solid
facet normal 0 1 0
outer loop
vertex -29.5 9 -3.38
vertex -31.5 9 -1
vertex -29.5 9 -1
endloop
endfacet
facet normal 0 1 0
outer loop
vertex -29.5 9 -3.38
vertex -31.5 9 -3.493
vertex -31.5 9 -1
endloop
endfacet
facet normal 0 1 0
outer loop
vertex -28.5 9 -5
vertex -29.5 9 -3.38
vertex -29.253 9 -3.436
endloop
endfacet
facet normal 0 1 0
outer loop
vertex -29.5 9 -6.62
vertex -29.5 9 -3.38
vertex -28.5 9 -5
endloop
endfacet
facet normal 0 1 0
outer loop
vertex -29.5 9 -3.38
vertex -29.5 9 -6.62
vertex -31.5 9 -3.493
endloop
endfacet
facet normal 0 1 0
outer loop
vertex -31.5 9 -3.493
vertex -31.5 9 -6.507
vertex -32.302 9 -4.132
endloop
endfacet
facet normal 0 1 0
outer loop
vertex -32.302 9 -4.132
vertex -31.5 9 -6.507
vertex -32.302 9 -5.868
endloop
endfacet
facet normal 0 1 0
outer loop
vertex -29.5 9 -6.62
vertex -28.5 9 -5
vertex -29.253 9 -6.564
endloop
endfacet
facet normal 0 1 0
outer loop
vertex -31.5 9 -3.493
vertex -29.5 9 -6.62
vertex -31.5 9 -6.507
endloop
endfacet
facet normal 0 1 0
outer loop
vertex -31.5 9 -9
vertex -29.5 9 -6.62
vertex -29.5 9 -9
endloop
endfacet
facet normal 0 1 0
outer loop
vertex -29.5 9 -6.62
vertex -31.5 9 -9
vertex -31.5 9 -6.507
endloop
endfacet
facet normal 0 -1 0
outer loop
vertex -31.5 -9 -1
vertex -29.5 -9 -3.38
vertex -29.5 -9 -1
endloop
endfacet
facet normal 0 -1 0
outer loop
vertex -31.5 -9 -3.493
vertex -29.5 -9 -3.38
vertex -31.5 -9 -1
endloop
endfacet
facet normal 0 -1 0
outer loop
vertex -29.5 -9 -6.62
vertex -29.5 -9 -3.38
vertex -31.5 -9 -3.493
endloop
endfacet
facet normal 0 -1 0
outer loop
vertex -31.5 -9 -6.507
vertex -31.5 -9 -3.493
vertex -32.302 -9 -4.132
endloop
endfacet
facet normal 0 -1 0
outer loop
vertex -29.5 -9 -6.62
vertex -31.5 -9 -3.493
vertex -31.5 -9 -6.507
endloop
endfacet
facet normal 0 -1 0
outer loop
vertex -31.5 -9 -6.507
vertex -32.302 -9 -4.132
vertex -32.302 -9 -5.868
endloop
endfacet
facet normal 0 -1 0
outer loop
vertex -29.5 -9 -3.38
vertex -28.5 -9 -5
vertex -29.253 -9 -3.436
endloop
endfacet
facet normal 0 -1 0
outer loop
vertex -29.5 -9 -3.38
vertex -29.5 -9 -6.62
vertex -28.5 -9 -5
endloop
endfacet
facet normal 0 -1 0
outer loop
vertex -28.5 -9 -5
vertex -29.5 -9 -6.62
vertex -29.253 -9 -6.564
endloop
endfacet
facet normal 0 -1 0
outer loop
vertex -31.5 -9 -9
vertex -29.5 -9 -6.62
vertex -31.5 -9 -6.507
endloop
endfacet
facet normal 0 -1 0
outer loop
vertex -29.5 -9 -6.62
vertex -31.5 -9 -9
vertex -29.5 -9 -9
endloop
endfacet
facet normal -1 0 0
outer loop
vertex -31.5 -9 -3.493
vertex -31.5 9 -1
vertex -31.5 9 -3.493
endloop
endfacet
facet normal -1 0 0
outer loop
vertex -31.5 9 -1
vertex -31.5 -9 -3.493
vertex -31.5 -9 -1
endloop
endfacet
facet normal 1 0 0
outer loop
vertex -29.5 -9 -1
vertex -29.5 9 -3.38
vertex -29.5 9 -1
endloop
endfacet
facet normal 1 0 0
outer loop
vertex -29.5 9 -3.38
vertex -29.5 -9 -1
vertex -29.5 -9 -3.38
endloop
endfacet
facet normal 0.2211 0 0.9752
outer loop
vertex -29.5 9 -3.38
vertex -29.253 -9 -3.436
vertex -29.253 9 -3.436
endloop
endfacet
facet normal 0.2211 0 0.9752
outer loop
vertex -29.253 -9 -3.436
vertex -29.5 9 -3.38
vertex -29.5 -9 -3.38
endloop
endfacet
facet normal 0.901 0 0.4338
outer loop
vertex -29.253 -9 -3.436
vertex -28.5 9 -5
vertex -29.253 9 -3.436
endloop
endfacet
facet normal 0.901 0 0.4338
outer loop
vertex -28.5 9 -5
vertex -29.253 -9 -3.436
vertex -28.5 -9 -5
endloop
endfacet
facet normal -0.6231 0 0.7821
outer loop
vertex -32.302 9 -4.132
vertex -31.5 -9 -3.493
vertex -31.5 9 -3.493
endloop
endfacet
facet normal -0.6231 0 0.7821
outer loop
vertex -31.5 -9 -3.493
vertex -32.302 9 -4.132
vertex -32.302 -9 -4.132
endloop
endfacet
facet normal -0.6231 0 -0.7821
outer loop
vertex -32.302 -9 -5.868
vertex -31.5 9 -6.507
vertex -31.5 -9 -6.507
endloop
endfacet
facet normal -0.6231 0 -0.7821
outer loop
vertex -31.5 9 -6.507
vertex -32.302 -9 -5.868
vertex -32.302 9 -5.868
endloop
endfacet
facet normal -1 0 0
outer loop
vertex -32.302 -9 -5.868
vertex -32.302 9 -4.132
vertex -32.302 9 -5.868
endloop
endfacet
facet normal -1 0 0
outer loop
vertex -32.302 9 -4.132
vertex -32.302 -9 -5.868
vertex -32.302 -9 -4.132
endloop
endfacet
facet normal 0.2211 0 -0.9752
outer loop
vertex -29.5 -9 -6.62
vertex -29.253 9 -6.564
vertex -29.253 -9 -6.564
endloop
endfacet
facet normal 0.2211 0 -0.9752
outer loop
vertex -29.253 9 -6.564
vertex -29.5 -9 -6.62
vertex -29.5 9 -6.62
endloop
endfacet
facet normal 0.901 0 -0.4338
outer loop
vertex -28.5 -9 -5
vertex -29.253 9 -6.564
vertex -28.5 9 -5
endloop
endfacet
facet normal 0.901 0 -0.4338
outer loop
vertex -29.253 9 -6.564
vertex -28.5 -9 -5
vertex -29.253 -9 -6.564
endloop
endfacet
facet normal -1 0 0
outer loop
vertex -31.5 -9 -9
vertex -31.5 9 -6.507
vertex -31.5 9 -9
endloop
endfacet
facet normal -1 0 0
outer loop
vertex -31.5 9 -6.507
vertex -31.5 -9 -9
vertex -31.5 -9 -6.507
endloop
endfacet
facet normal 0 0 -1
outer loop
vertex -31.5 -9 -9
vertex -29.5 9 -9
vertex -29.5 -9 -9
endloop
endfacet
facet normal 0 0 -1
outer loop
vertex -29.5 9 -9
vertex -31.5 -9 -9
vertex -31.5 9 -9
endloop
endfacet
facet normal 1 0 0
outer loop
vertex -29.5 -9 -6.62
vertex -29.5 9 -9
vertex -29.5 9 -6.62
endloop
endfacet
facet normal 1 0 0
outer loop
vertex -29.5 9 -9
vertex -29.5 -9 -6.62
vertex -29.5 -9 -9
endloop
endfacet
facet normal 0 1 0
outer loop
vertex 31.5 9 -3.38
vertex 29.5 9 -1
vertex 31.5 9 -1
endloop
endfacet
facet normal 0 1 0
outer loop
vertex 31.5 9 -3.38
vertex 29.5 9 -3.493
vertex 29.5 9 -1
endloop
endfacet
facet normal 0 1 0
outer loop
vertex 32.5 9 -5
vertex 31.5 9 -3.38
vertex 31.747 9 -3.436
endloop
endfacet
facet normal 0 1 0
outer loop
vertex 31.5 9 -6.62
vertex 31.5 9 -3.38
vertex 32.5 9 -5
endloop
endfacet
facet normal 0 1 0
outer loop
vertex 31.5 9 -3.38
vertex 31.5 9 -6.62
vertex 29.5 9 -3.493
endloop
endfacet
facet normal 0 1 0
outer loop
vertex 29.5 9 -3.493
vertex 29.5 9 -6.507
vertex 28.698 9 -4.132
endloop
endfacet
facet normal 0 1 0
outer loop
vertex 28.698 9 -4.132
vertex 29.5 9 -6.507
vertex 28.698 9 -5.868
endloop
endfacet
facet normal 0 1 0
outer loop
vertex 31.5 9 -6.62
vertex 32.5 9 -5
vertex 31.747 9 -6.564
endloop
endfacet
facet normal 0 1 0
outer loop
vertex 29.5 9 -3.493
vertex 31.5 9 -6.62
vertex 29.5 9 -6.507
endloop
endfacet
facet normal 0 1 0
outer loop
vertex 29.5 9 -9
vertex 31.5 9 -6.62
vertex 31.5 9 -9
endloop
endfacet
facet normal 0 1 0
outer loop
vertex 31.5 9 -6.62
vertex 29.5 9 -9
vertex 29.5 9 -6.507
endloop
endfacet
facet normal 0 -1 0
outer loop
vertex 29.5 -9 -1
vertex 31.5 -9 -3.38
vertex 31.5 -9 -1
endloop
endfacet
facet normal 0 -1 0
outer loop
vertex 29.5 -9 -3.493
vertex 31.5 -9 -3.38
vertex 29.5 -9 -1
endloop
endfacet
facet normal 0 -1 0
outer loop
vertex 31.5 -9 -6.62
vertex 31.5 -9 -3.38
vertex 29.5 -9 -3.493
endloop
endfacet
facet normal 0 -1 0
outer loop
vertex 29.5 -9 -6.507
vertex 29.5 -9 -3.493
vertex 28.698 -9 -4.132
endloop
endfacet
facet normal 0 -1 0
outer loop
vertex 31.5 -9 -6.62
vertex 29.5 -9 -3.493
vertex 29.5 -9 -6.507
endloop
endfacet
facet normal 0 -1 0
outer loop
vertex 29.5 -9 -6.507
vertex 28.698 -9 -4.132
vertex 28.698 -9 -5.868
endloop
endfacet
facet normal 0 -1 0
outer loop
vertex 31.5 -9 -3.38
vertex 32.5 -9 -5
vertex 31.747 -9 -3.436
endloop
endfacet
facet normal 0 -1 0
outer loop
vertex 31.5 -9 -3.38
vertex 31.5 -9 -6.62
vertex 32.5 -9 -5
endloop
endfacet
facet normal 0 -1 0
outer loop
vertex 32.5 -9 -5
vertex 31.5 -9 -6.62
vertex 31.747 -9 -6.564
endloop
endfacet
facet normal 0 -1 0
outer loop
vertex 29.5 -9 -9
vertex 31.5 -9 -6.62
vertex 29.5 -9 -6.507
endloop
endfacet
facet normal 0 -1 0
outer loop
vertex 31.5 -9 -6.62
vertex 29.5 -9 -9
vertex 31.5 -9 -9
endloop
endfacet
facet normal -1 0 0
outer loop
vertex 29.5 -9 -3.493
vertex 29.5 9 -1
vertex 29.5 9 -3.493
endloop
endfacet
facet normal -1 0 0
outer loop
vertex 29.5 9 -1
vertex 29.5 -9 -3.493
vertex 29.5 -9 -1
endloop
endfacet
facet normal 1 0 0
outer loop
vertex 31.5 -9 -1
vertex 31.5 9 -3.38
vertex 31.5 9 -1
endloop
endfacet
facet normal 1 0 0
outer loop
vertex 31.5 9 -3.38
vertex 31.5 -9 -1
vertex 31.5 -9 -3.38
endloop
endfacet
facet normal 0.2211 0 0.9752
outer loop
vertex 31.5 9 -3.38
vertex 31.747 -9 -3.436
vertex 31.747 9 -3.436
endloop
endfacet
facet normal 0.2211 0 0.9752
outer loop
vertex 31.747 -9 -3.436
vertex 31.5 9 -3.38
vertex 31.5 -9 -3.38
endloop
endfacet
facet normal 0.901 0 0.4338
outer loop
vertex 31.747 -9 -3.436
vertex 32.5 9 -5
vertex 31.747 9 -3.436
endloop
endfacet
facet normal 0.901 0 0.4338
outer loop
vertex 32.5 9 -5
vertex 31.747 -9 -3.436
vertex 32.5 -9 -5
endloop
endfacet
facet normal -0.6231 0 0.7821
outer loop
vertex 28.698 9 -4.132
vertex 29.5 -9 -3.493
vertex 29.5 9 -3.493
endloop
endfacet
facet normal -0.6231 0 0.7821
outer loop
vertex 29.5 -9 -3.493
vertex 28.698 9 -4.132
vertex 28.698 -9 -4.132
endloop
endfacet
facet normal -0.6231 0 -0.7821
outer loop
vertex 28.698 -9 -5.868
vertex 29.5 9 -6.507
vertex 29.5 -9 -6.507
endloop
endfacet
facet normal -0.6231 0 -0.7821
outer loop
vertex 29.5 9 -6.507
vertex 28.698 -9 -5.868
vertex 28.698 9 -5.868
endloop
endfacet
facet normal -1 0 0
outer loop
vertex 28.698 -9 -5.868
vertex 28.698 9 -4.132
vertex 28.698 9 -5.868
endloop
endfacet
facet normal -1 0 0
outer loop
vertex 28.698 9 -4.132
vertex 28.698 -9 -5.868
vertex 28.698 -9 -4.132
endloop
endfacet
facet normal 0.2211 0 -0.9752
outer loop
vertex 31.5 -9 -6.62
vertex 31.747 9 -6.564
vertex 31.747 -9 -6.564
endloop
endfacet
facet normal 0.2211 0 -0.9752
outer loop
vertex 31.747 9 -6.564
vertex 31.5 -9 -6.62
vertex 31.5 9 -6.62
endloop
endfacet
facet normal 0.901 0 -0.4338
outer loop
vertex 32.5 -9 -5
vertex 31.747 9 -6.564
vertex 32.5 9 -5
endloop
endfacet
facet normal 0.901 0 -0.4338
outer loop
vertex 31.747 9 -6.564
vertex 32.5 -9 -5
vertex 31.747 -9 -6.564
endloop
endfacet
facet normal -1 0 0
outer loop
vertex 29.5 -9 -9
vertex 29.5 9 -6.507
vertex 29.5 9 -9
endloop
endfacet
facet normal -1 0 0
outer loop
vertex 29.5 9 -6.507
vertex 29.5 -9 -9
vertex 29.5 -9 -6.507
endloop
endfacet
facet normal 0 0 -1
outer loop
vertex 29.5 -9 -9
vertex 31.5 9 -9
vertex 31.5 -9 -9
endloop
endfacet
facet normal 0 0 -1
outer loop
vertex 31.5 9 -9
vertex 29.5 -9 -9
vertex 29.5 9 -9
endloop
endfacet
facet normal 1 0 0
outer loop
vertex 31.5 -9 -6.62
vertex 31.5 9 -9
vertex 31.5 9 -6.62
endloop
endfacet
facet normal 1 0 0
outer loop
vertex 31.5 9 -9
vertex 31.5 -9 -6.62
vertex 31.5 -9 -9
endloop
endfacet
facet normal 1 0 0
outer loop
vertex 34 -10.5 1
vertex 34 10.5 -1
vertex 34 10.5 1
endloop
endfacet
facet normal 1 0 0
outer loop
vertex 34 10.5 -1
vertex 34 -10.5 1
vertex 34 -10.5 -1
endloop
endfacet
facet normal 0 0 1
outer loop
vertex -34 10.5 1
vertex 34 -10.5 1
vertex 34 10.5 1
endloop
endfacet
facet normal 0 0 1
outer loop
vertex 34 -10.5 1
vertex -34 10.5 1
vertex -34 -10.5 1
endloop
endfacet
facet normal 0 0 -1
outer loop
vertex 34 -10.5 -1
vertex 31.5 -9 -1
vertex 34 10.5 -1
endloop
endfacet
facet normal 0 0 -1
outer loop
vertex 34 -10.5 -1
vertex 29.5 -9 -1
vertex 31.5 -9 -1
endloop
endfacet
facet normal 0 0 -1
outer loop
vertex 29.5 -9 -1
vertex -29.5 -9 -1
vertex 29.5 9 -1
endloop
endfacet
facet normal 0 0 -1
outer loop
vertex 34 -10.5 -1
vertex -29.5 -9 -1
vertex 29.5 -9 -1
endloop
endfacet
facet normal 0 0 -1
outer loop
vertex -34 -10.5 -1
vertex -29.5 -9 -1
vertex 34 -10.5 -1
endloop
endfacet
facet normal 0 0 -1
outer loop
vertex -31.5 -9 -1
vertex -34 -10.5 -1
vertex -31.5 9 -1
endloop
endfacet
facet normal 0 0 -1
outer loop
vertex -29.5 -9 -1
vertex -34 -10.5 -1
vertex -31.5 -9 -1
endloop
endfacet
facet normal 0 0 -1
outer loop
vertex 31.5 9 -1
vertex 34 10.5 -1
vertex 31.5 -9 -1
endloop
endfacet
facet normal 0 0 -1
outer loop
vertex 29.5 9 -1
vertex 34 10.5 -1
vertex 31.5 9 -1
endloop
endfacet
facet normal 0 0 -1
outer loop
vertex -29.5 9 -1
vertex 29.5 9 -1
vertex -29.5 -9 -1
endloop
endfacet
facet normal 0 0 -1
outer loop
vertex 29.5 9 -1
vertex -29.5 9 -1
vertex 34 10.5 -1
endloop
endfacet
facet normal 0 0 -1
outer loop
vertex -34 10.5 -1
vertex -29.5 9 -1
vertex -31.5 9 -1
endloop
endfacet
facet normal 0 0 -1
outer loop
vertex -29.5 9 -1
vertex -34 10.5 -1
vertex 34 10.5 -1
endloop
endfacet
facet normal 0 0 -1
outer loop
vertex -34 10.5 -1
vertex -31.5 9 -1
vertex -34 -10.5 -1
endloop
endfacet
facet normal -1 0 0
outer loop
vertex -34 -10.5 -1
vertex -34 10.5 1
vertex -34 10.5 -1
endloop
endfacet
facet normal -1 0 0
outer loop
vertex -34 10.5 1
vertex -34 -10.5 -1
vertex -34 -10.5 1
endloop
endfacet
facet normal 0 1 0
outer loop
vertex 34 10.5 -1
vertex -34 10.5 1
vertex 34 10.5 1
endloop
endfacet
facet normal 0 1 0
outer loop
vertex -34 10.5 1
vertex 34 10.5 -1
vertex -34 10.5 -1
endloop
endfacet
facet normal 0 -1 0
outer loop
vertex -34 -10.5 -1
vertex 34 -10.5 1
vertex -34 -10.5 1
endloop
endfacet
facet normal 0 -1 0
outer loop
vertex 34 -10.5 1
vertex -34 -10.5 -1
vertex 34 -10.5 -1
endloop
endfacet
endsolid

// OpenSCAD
// Dimensions from the diagram
window_width = 65;    // Width of the window in mm  measured 63
window_height = 18;   // Height of the window in mm
window_thickness = 2; // Thickness of the main piece
clip_depth = 8;       // Depth of the flexible clip
clip_width = window_height;       // Width of each flexible clip
hook_height = 4;      // Height of the hook portion
hook_radius = 2;      // Curved radius of the hook
stem_length = 3;      // Length of the vertical stem before the hook

module mailbox_visor_with_flexible_hooks() {
    // Create the main rectangular visor part
    visor(window_width, window_height, window_thickness);

    // Add flexible hooked clips on the sides
    add_flexible_hooks(window_width, window_height, clip_depth, clip_width, hook_radius, stem_length, hook_height);
}

// Function to create the rectangular visor
module visor(w, h, t) {
    cube([w+3, h+3, t], center = true);
}

// Function to add flexible hooks to both sides of the visor
module add_flexible_hooks(w, h, depth, clip_w, radius, stem_len, hook_h) {
    for (i = [-1, 1]) {
        // Create the flexible clips on the left and right sides
        translate([i * (w / 2 - 2), 0, -2])
            flexible_hook(clip_w, radius, stem_len, hook_h);
    }
}

// Module to create a single flexible clip with a curved hook
module flexible_hook(width, radius, stem_len, hook_h) {
    // Create the vertical flexible stem
      rotate([0, 0, 90])
    translate([0, 0, 0])
        cube([width, 2, stem_len+2], center = true);

    // Create the rounded hook using cylinder and translate to hook end
    translate([0, 0, -stem_len])
        rotate([90, 0, 0])
            cylinder(r=radius, h=width, center=true);

    // Add an extended hook base to finish the clip
        rotate([0, 0, 90])
    translate([0, 0, -stem_len - radius])
        cube([width, 2, hook_h], center = true);
}

// Call the module to render the model
mailbox_visor_with_flexible_hooks();
